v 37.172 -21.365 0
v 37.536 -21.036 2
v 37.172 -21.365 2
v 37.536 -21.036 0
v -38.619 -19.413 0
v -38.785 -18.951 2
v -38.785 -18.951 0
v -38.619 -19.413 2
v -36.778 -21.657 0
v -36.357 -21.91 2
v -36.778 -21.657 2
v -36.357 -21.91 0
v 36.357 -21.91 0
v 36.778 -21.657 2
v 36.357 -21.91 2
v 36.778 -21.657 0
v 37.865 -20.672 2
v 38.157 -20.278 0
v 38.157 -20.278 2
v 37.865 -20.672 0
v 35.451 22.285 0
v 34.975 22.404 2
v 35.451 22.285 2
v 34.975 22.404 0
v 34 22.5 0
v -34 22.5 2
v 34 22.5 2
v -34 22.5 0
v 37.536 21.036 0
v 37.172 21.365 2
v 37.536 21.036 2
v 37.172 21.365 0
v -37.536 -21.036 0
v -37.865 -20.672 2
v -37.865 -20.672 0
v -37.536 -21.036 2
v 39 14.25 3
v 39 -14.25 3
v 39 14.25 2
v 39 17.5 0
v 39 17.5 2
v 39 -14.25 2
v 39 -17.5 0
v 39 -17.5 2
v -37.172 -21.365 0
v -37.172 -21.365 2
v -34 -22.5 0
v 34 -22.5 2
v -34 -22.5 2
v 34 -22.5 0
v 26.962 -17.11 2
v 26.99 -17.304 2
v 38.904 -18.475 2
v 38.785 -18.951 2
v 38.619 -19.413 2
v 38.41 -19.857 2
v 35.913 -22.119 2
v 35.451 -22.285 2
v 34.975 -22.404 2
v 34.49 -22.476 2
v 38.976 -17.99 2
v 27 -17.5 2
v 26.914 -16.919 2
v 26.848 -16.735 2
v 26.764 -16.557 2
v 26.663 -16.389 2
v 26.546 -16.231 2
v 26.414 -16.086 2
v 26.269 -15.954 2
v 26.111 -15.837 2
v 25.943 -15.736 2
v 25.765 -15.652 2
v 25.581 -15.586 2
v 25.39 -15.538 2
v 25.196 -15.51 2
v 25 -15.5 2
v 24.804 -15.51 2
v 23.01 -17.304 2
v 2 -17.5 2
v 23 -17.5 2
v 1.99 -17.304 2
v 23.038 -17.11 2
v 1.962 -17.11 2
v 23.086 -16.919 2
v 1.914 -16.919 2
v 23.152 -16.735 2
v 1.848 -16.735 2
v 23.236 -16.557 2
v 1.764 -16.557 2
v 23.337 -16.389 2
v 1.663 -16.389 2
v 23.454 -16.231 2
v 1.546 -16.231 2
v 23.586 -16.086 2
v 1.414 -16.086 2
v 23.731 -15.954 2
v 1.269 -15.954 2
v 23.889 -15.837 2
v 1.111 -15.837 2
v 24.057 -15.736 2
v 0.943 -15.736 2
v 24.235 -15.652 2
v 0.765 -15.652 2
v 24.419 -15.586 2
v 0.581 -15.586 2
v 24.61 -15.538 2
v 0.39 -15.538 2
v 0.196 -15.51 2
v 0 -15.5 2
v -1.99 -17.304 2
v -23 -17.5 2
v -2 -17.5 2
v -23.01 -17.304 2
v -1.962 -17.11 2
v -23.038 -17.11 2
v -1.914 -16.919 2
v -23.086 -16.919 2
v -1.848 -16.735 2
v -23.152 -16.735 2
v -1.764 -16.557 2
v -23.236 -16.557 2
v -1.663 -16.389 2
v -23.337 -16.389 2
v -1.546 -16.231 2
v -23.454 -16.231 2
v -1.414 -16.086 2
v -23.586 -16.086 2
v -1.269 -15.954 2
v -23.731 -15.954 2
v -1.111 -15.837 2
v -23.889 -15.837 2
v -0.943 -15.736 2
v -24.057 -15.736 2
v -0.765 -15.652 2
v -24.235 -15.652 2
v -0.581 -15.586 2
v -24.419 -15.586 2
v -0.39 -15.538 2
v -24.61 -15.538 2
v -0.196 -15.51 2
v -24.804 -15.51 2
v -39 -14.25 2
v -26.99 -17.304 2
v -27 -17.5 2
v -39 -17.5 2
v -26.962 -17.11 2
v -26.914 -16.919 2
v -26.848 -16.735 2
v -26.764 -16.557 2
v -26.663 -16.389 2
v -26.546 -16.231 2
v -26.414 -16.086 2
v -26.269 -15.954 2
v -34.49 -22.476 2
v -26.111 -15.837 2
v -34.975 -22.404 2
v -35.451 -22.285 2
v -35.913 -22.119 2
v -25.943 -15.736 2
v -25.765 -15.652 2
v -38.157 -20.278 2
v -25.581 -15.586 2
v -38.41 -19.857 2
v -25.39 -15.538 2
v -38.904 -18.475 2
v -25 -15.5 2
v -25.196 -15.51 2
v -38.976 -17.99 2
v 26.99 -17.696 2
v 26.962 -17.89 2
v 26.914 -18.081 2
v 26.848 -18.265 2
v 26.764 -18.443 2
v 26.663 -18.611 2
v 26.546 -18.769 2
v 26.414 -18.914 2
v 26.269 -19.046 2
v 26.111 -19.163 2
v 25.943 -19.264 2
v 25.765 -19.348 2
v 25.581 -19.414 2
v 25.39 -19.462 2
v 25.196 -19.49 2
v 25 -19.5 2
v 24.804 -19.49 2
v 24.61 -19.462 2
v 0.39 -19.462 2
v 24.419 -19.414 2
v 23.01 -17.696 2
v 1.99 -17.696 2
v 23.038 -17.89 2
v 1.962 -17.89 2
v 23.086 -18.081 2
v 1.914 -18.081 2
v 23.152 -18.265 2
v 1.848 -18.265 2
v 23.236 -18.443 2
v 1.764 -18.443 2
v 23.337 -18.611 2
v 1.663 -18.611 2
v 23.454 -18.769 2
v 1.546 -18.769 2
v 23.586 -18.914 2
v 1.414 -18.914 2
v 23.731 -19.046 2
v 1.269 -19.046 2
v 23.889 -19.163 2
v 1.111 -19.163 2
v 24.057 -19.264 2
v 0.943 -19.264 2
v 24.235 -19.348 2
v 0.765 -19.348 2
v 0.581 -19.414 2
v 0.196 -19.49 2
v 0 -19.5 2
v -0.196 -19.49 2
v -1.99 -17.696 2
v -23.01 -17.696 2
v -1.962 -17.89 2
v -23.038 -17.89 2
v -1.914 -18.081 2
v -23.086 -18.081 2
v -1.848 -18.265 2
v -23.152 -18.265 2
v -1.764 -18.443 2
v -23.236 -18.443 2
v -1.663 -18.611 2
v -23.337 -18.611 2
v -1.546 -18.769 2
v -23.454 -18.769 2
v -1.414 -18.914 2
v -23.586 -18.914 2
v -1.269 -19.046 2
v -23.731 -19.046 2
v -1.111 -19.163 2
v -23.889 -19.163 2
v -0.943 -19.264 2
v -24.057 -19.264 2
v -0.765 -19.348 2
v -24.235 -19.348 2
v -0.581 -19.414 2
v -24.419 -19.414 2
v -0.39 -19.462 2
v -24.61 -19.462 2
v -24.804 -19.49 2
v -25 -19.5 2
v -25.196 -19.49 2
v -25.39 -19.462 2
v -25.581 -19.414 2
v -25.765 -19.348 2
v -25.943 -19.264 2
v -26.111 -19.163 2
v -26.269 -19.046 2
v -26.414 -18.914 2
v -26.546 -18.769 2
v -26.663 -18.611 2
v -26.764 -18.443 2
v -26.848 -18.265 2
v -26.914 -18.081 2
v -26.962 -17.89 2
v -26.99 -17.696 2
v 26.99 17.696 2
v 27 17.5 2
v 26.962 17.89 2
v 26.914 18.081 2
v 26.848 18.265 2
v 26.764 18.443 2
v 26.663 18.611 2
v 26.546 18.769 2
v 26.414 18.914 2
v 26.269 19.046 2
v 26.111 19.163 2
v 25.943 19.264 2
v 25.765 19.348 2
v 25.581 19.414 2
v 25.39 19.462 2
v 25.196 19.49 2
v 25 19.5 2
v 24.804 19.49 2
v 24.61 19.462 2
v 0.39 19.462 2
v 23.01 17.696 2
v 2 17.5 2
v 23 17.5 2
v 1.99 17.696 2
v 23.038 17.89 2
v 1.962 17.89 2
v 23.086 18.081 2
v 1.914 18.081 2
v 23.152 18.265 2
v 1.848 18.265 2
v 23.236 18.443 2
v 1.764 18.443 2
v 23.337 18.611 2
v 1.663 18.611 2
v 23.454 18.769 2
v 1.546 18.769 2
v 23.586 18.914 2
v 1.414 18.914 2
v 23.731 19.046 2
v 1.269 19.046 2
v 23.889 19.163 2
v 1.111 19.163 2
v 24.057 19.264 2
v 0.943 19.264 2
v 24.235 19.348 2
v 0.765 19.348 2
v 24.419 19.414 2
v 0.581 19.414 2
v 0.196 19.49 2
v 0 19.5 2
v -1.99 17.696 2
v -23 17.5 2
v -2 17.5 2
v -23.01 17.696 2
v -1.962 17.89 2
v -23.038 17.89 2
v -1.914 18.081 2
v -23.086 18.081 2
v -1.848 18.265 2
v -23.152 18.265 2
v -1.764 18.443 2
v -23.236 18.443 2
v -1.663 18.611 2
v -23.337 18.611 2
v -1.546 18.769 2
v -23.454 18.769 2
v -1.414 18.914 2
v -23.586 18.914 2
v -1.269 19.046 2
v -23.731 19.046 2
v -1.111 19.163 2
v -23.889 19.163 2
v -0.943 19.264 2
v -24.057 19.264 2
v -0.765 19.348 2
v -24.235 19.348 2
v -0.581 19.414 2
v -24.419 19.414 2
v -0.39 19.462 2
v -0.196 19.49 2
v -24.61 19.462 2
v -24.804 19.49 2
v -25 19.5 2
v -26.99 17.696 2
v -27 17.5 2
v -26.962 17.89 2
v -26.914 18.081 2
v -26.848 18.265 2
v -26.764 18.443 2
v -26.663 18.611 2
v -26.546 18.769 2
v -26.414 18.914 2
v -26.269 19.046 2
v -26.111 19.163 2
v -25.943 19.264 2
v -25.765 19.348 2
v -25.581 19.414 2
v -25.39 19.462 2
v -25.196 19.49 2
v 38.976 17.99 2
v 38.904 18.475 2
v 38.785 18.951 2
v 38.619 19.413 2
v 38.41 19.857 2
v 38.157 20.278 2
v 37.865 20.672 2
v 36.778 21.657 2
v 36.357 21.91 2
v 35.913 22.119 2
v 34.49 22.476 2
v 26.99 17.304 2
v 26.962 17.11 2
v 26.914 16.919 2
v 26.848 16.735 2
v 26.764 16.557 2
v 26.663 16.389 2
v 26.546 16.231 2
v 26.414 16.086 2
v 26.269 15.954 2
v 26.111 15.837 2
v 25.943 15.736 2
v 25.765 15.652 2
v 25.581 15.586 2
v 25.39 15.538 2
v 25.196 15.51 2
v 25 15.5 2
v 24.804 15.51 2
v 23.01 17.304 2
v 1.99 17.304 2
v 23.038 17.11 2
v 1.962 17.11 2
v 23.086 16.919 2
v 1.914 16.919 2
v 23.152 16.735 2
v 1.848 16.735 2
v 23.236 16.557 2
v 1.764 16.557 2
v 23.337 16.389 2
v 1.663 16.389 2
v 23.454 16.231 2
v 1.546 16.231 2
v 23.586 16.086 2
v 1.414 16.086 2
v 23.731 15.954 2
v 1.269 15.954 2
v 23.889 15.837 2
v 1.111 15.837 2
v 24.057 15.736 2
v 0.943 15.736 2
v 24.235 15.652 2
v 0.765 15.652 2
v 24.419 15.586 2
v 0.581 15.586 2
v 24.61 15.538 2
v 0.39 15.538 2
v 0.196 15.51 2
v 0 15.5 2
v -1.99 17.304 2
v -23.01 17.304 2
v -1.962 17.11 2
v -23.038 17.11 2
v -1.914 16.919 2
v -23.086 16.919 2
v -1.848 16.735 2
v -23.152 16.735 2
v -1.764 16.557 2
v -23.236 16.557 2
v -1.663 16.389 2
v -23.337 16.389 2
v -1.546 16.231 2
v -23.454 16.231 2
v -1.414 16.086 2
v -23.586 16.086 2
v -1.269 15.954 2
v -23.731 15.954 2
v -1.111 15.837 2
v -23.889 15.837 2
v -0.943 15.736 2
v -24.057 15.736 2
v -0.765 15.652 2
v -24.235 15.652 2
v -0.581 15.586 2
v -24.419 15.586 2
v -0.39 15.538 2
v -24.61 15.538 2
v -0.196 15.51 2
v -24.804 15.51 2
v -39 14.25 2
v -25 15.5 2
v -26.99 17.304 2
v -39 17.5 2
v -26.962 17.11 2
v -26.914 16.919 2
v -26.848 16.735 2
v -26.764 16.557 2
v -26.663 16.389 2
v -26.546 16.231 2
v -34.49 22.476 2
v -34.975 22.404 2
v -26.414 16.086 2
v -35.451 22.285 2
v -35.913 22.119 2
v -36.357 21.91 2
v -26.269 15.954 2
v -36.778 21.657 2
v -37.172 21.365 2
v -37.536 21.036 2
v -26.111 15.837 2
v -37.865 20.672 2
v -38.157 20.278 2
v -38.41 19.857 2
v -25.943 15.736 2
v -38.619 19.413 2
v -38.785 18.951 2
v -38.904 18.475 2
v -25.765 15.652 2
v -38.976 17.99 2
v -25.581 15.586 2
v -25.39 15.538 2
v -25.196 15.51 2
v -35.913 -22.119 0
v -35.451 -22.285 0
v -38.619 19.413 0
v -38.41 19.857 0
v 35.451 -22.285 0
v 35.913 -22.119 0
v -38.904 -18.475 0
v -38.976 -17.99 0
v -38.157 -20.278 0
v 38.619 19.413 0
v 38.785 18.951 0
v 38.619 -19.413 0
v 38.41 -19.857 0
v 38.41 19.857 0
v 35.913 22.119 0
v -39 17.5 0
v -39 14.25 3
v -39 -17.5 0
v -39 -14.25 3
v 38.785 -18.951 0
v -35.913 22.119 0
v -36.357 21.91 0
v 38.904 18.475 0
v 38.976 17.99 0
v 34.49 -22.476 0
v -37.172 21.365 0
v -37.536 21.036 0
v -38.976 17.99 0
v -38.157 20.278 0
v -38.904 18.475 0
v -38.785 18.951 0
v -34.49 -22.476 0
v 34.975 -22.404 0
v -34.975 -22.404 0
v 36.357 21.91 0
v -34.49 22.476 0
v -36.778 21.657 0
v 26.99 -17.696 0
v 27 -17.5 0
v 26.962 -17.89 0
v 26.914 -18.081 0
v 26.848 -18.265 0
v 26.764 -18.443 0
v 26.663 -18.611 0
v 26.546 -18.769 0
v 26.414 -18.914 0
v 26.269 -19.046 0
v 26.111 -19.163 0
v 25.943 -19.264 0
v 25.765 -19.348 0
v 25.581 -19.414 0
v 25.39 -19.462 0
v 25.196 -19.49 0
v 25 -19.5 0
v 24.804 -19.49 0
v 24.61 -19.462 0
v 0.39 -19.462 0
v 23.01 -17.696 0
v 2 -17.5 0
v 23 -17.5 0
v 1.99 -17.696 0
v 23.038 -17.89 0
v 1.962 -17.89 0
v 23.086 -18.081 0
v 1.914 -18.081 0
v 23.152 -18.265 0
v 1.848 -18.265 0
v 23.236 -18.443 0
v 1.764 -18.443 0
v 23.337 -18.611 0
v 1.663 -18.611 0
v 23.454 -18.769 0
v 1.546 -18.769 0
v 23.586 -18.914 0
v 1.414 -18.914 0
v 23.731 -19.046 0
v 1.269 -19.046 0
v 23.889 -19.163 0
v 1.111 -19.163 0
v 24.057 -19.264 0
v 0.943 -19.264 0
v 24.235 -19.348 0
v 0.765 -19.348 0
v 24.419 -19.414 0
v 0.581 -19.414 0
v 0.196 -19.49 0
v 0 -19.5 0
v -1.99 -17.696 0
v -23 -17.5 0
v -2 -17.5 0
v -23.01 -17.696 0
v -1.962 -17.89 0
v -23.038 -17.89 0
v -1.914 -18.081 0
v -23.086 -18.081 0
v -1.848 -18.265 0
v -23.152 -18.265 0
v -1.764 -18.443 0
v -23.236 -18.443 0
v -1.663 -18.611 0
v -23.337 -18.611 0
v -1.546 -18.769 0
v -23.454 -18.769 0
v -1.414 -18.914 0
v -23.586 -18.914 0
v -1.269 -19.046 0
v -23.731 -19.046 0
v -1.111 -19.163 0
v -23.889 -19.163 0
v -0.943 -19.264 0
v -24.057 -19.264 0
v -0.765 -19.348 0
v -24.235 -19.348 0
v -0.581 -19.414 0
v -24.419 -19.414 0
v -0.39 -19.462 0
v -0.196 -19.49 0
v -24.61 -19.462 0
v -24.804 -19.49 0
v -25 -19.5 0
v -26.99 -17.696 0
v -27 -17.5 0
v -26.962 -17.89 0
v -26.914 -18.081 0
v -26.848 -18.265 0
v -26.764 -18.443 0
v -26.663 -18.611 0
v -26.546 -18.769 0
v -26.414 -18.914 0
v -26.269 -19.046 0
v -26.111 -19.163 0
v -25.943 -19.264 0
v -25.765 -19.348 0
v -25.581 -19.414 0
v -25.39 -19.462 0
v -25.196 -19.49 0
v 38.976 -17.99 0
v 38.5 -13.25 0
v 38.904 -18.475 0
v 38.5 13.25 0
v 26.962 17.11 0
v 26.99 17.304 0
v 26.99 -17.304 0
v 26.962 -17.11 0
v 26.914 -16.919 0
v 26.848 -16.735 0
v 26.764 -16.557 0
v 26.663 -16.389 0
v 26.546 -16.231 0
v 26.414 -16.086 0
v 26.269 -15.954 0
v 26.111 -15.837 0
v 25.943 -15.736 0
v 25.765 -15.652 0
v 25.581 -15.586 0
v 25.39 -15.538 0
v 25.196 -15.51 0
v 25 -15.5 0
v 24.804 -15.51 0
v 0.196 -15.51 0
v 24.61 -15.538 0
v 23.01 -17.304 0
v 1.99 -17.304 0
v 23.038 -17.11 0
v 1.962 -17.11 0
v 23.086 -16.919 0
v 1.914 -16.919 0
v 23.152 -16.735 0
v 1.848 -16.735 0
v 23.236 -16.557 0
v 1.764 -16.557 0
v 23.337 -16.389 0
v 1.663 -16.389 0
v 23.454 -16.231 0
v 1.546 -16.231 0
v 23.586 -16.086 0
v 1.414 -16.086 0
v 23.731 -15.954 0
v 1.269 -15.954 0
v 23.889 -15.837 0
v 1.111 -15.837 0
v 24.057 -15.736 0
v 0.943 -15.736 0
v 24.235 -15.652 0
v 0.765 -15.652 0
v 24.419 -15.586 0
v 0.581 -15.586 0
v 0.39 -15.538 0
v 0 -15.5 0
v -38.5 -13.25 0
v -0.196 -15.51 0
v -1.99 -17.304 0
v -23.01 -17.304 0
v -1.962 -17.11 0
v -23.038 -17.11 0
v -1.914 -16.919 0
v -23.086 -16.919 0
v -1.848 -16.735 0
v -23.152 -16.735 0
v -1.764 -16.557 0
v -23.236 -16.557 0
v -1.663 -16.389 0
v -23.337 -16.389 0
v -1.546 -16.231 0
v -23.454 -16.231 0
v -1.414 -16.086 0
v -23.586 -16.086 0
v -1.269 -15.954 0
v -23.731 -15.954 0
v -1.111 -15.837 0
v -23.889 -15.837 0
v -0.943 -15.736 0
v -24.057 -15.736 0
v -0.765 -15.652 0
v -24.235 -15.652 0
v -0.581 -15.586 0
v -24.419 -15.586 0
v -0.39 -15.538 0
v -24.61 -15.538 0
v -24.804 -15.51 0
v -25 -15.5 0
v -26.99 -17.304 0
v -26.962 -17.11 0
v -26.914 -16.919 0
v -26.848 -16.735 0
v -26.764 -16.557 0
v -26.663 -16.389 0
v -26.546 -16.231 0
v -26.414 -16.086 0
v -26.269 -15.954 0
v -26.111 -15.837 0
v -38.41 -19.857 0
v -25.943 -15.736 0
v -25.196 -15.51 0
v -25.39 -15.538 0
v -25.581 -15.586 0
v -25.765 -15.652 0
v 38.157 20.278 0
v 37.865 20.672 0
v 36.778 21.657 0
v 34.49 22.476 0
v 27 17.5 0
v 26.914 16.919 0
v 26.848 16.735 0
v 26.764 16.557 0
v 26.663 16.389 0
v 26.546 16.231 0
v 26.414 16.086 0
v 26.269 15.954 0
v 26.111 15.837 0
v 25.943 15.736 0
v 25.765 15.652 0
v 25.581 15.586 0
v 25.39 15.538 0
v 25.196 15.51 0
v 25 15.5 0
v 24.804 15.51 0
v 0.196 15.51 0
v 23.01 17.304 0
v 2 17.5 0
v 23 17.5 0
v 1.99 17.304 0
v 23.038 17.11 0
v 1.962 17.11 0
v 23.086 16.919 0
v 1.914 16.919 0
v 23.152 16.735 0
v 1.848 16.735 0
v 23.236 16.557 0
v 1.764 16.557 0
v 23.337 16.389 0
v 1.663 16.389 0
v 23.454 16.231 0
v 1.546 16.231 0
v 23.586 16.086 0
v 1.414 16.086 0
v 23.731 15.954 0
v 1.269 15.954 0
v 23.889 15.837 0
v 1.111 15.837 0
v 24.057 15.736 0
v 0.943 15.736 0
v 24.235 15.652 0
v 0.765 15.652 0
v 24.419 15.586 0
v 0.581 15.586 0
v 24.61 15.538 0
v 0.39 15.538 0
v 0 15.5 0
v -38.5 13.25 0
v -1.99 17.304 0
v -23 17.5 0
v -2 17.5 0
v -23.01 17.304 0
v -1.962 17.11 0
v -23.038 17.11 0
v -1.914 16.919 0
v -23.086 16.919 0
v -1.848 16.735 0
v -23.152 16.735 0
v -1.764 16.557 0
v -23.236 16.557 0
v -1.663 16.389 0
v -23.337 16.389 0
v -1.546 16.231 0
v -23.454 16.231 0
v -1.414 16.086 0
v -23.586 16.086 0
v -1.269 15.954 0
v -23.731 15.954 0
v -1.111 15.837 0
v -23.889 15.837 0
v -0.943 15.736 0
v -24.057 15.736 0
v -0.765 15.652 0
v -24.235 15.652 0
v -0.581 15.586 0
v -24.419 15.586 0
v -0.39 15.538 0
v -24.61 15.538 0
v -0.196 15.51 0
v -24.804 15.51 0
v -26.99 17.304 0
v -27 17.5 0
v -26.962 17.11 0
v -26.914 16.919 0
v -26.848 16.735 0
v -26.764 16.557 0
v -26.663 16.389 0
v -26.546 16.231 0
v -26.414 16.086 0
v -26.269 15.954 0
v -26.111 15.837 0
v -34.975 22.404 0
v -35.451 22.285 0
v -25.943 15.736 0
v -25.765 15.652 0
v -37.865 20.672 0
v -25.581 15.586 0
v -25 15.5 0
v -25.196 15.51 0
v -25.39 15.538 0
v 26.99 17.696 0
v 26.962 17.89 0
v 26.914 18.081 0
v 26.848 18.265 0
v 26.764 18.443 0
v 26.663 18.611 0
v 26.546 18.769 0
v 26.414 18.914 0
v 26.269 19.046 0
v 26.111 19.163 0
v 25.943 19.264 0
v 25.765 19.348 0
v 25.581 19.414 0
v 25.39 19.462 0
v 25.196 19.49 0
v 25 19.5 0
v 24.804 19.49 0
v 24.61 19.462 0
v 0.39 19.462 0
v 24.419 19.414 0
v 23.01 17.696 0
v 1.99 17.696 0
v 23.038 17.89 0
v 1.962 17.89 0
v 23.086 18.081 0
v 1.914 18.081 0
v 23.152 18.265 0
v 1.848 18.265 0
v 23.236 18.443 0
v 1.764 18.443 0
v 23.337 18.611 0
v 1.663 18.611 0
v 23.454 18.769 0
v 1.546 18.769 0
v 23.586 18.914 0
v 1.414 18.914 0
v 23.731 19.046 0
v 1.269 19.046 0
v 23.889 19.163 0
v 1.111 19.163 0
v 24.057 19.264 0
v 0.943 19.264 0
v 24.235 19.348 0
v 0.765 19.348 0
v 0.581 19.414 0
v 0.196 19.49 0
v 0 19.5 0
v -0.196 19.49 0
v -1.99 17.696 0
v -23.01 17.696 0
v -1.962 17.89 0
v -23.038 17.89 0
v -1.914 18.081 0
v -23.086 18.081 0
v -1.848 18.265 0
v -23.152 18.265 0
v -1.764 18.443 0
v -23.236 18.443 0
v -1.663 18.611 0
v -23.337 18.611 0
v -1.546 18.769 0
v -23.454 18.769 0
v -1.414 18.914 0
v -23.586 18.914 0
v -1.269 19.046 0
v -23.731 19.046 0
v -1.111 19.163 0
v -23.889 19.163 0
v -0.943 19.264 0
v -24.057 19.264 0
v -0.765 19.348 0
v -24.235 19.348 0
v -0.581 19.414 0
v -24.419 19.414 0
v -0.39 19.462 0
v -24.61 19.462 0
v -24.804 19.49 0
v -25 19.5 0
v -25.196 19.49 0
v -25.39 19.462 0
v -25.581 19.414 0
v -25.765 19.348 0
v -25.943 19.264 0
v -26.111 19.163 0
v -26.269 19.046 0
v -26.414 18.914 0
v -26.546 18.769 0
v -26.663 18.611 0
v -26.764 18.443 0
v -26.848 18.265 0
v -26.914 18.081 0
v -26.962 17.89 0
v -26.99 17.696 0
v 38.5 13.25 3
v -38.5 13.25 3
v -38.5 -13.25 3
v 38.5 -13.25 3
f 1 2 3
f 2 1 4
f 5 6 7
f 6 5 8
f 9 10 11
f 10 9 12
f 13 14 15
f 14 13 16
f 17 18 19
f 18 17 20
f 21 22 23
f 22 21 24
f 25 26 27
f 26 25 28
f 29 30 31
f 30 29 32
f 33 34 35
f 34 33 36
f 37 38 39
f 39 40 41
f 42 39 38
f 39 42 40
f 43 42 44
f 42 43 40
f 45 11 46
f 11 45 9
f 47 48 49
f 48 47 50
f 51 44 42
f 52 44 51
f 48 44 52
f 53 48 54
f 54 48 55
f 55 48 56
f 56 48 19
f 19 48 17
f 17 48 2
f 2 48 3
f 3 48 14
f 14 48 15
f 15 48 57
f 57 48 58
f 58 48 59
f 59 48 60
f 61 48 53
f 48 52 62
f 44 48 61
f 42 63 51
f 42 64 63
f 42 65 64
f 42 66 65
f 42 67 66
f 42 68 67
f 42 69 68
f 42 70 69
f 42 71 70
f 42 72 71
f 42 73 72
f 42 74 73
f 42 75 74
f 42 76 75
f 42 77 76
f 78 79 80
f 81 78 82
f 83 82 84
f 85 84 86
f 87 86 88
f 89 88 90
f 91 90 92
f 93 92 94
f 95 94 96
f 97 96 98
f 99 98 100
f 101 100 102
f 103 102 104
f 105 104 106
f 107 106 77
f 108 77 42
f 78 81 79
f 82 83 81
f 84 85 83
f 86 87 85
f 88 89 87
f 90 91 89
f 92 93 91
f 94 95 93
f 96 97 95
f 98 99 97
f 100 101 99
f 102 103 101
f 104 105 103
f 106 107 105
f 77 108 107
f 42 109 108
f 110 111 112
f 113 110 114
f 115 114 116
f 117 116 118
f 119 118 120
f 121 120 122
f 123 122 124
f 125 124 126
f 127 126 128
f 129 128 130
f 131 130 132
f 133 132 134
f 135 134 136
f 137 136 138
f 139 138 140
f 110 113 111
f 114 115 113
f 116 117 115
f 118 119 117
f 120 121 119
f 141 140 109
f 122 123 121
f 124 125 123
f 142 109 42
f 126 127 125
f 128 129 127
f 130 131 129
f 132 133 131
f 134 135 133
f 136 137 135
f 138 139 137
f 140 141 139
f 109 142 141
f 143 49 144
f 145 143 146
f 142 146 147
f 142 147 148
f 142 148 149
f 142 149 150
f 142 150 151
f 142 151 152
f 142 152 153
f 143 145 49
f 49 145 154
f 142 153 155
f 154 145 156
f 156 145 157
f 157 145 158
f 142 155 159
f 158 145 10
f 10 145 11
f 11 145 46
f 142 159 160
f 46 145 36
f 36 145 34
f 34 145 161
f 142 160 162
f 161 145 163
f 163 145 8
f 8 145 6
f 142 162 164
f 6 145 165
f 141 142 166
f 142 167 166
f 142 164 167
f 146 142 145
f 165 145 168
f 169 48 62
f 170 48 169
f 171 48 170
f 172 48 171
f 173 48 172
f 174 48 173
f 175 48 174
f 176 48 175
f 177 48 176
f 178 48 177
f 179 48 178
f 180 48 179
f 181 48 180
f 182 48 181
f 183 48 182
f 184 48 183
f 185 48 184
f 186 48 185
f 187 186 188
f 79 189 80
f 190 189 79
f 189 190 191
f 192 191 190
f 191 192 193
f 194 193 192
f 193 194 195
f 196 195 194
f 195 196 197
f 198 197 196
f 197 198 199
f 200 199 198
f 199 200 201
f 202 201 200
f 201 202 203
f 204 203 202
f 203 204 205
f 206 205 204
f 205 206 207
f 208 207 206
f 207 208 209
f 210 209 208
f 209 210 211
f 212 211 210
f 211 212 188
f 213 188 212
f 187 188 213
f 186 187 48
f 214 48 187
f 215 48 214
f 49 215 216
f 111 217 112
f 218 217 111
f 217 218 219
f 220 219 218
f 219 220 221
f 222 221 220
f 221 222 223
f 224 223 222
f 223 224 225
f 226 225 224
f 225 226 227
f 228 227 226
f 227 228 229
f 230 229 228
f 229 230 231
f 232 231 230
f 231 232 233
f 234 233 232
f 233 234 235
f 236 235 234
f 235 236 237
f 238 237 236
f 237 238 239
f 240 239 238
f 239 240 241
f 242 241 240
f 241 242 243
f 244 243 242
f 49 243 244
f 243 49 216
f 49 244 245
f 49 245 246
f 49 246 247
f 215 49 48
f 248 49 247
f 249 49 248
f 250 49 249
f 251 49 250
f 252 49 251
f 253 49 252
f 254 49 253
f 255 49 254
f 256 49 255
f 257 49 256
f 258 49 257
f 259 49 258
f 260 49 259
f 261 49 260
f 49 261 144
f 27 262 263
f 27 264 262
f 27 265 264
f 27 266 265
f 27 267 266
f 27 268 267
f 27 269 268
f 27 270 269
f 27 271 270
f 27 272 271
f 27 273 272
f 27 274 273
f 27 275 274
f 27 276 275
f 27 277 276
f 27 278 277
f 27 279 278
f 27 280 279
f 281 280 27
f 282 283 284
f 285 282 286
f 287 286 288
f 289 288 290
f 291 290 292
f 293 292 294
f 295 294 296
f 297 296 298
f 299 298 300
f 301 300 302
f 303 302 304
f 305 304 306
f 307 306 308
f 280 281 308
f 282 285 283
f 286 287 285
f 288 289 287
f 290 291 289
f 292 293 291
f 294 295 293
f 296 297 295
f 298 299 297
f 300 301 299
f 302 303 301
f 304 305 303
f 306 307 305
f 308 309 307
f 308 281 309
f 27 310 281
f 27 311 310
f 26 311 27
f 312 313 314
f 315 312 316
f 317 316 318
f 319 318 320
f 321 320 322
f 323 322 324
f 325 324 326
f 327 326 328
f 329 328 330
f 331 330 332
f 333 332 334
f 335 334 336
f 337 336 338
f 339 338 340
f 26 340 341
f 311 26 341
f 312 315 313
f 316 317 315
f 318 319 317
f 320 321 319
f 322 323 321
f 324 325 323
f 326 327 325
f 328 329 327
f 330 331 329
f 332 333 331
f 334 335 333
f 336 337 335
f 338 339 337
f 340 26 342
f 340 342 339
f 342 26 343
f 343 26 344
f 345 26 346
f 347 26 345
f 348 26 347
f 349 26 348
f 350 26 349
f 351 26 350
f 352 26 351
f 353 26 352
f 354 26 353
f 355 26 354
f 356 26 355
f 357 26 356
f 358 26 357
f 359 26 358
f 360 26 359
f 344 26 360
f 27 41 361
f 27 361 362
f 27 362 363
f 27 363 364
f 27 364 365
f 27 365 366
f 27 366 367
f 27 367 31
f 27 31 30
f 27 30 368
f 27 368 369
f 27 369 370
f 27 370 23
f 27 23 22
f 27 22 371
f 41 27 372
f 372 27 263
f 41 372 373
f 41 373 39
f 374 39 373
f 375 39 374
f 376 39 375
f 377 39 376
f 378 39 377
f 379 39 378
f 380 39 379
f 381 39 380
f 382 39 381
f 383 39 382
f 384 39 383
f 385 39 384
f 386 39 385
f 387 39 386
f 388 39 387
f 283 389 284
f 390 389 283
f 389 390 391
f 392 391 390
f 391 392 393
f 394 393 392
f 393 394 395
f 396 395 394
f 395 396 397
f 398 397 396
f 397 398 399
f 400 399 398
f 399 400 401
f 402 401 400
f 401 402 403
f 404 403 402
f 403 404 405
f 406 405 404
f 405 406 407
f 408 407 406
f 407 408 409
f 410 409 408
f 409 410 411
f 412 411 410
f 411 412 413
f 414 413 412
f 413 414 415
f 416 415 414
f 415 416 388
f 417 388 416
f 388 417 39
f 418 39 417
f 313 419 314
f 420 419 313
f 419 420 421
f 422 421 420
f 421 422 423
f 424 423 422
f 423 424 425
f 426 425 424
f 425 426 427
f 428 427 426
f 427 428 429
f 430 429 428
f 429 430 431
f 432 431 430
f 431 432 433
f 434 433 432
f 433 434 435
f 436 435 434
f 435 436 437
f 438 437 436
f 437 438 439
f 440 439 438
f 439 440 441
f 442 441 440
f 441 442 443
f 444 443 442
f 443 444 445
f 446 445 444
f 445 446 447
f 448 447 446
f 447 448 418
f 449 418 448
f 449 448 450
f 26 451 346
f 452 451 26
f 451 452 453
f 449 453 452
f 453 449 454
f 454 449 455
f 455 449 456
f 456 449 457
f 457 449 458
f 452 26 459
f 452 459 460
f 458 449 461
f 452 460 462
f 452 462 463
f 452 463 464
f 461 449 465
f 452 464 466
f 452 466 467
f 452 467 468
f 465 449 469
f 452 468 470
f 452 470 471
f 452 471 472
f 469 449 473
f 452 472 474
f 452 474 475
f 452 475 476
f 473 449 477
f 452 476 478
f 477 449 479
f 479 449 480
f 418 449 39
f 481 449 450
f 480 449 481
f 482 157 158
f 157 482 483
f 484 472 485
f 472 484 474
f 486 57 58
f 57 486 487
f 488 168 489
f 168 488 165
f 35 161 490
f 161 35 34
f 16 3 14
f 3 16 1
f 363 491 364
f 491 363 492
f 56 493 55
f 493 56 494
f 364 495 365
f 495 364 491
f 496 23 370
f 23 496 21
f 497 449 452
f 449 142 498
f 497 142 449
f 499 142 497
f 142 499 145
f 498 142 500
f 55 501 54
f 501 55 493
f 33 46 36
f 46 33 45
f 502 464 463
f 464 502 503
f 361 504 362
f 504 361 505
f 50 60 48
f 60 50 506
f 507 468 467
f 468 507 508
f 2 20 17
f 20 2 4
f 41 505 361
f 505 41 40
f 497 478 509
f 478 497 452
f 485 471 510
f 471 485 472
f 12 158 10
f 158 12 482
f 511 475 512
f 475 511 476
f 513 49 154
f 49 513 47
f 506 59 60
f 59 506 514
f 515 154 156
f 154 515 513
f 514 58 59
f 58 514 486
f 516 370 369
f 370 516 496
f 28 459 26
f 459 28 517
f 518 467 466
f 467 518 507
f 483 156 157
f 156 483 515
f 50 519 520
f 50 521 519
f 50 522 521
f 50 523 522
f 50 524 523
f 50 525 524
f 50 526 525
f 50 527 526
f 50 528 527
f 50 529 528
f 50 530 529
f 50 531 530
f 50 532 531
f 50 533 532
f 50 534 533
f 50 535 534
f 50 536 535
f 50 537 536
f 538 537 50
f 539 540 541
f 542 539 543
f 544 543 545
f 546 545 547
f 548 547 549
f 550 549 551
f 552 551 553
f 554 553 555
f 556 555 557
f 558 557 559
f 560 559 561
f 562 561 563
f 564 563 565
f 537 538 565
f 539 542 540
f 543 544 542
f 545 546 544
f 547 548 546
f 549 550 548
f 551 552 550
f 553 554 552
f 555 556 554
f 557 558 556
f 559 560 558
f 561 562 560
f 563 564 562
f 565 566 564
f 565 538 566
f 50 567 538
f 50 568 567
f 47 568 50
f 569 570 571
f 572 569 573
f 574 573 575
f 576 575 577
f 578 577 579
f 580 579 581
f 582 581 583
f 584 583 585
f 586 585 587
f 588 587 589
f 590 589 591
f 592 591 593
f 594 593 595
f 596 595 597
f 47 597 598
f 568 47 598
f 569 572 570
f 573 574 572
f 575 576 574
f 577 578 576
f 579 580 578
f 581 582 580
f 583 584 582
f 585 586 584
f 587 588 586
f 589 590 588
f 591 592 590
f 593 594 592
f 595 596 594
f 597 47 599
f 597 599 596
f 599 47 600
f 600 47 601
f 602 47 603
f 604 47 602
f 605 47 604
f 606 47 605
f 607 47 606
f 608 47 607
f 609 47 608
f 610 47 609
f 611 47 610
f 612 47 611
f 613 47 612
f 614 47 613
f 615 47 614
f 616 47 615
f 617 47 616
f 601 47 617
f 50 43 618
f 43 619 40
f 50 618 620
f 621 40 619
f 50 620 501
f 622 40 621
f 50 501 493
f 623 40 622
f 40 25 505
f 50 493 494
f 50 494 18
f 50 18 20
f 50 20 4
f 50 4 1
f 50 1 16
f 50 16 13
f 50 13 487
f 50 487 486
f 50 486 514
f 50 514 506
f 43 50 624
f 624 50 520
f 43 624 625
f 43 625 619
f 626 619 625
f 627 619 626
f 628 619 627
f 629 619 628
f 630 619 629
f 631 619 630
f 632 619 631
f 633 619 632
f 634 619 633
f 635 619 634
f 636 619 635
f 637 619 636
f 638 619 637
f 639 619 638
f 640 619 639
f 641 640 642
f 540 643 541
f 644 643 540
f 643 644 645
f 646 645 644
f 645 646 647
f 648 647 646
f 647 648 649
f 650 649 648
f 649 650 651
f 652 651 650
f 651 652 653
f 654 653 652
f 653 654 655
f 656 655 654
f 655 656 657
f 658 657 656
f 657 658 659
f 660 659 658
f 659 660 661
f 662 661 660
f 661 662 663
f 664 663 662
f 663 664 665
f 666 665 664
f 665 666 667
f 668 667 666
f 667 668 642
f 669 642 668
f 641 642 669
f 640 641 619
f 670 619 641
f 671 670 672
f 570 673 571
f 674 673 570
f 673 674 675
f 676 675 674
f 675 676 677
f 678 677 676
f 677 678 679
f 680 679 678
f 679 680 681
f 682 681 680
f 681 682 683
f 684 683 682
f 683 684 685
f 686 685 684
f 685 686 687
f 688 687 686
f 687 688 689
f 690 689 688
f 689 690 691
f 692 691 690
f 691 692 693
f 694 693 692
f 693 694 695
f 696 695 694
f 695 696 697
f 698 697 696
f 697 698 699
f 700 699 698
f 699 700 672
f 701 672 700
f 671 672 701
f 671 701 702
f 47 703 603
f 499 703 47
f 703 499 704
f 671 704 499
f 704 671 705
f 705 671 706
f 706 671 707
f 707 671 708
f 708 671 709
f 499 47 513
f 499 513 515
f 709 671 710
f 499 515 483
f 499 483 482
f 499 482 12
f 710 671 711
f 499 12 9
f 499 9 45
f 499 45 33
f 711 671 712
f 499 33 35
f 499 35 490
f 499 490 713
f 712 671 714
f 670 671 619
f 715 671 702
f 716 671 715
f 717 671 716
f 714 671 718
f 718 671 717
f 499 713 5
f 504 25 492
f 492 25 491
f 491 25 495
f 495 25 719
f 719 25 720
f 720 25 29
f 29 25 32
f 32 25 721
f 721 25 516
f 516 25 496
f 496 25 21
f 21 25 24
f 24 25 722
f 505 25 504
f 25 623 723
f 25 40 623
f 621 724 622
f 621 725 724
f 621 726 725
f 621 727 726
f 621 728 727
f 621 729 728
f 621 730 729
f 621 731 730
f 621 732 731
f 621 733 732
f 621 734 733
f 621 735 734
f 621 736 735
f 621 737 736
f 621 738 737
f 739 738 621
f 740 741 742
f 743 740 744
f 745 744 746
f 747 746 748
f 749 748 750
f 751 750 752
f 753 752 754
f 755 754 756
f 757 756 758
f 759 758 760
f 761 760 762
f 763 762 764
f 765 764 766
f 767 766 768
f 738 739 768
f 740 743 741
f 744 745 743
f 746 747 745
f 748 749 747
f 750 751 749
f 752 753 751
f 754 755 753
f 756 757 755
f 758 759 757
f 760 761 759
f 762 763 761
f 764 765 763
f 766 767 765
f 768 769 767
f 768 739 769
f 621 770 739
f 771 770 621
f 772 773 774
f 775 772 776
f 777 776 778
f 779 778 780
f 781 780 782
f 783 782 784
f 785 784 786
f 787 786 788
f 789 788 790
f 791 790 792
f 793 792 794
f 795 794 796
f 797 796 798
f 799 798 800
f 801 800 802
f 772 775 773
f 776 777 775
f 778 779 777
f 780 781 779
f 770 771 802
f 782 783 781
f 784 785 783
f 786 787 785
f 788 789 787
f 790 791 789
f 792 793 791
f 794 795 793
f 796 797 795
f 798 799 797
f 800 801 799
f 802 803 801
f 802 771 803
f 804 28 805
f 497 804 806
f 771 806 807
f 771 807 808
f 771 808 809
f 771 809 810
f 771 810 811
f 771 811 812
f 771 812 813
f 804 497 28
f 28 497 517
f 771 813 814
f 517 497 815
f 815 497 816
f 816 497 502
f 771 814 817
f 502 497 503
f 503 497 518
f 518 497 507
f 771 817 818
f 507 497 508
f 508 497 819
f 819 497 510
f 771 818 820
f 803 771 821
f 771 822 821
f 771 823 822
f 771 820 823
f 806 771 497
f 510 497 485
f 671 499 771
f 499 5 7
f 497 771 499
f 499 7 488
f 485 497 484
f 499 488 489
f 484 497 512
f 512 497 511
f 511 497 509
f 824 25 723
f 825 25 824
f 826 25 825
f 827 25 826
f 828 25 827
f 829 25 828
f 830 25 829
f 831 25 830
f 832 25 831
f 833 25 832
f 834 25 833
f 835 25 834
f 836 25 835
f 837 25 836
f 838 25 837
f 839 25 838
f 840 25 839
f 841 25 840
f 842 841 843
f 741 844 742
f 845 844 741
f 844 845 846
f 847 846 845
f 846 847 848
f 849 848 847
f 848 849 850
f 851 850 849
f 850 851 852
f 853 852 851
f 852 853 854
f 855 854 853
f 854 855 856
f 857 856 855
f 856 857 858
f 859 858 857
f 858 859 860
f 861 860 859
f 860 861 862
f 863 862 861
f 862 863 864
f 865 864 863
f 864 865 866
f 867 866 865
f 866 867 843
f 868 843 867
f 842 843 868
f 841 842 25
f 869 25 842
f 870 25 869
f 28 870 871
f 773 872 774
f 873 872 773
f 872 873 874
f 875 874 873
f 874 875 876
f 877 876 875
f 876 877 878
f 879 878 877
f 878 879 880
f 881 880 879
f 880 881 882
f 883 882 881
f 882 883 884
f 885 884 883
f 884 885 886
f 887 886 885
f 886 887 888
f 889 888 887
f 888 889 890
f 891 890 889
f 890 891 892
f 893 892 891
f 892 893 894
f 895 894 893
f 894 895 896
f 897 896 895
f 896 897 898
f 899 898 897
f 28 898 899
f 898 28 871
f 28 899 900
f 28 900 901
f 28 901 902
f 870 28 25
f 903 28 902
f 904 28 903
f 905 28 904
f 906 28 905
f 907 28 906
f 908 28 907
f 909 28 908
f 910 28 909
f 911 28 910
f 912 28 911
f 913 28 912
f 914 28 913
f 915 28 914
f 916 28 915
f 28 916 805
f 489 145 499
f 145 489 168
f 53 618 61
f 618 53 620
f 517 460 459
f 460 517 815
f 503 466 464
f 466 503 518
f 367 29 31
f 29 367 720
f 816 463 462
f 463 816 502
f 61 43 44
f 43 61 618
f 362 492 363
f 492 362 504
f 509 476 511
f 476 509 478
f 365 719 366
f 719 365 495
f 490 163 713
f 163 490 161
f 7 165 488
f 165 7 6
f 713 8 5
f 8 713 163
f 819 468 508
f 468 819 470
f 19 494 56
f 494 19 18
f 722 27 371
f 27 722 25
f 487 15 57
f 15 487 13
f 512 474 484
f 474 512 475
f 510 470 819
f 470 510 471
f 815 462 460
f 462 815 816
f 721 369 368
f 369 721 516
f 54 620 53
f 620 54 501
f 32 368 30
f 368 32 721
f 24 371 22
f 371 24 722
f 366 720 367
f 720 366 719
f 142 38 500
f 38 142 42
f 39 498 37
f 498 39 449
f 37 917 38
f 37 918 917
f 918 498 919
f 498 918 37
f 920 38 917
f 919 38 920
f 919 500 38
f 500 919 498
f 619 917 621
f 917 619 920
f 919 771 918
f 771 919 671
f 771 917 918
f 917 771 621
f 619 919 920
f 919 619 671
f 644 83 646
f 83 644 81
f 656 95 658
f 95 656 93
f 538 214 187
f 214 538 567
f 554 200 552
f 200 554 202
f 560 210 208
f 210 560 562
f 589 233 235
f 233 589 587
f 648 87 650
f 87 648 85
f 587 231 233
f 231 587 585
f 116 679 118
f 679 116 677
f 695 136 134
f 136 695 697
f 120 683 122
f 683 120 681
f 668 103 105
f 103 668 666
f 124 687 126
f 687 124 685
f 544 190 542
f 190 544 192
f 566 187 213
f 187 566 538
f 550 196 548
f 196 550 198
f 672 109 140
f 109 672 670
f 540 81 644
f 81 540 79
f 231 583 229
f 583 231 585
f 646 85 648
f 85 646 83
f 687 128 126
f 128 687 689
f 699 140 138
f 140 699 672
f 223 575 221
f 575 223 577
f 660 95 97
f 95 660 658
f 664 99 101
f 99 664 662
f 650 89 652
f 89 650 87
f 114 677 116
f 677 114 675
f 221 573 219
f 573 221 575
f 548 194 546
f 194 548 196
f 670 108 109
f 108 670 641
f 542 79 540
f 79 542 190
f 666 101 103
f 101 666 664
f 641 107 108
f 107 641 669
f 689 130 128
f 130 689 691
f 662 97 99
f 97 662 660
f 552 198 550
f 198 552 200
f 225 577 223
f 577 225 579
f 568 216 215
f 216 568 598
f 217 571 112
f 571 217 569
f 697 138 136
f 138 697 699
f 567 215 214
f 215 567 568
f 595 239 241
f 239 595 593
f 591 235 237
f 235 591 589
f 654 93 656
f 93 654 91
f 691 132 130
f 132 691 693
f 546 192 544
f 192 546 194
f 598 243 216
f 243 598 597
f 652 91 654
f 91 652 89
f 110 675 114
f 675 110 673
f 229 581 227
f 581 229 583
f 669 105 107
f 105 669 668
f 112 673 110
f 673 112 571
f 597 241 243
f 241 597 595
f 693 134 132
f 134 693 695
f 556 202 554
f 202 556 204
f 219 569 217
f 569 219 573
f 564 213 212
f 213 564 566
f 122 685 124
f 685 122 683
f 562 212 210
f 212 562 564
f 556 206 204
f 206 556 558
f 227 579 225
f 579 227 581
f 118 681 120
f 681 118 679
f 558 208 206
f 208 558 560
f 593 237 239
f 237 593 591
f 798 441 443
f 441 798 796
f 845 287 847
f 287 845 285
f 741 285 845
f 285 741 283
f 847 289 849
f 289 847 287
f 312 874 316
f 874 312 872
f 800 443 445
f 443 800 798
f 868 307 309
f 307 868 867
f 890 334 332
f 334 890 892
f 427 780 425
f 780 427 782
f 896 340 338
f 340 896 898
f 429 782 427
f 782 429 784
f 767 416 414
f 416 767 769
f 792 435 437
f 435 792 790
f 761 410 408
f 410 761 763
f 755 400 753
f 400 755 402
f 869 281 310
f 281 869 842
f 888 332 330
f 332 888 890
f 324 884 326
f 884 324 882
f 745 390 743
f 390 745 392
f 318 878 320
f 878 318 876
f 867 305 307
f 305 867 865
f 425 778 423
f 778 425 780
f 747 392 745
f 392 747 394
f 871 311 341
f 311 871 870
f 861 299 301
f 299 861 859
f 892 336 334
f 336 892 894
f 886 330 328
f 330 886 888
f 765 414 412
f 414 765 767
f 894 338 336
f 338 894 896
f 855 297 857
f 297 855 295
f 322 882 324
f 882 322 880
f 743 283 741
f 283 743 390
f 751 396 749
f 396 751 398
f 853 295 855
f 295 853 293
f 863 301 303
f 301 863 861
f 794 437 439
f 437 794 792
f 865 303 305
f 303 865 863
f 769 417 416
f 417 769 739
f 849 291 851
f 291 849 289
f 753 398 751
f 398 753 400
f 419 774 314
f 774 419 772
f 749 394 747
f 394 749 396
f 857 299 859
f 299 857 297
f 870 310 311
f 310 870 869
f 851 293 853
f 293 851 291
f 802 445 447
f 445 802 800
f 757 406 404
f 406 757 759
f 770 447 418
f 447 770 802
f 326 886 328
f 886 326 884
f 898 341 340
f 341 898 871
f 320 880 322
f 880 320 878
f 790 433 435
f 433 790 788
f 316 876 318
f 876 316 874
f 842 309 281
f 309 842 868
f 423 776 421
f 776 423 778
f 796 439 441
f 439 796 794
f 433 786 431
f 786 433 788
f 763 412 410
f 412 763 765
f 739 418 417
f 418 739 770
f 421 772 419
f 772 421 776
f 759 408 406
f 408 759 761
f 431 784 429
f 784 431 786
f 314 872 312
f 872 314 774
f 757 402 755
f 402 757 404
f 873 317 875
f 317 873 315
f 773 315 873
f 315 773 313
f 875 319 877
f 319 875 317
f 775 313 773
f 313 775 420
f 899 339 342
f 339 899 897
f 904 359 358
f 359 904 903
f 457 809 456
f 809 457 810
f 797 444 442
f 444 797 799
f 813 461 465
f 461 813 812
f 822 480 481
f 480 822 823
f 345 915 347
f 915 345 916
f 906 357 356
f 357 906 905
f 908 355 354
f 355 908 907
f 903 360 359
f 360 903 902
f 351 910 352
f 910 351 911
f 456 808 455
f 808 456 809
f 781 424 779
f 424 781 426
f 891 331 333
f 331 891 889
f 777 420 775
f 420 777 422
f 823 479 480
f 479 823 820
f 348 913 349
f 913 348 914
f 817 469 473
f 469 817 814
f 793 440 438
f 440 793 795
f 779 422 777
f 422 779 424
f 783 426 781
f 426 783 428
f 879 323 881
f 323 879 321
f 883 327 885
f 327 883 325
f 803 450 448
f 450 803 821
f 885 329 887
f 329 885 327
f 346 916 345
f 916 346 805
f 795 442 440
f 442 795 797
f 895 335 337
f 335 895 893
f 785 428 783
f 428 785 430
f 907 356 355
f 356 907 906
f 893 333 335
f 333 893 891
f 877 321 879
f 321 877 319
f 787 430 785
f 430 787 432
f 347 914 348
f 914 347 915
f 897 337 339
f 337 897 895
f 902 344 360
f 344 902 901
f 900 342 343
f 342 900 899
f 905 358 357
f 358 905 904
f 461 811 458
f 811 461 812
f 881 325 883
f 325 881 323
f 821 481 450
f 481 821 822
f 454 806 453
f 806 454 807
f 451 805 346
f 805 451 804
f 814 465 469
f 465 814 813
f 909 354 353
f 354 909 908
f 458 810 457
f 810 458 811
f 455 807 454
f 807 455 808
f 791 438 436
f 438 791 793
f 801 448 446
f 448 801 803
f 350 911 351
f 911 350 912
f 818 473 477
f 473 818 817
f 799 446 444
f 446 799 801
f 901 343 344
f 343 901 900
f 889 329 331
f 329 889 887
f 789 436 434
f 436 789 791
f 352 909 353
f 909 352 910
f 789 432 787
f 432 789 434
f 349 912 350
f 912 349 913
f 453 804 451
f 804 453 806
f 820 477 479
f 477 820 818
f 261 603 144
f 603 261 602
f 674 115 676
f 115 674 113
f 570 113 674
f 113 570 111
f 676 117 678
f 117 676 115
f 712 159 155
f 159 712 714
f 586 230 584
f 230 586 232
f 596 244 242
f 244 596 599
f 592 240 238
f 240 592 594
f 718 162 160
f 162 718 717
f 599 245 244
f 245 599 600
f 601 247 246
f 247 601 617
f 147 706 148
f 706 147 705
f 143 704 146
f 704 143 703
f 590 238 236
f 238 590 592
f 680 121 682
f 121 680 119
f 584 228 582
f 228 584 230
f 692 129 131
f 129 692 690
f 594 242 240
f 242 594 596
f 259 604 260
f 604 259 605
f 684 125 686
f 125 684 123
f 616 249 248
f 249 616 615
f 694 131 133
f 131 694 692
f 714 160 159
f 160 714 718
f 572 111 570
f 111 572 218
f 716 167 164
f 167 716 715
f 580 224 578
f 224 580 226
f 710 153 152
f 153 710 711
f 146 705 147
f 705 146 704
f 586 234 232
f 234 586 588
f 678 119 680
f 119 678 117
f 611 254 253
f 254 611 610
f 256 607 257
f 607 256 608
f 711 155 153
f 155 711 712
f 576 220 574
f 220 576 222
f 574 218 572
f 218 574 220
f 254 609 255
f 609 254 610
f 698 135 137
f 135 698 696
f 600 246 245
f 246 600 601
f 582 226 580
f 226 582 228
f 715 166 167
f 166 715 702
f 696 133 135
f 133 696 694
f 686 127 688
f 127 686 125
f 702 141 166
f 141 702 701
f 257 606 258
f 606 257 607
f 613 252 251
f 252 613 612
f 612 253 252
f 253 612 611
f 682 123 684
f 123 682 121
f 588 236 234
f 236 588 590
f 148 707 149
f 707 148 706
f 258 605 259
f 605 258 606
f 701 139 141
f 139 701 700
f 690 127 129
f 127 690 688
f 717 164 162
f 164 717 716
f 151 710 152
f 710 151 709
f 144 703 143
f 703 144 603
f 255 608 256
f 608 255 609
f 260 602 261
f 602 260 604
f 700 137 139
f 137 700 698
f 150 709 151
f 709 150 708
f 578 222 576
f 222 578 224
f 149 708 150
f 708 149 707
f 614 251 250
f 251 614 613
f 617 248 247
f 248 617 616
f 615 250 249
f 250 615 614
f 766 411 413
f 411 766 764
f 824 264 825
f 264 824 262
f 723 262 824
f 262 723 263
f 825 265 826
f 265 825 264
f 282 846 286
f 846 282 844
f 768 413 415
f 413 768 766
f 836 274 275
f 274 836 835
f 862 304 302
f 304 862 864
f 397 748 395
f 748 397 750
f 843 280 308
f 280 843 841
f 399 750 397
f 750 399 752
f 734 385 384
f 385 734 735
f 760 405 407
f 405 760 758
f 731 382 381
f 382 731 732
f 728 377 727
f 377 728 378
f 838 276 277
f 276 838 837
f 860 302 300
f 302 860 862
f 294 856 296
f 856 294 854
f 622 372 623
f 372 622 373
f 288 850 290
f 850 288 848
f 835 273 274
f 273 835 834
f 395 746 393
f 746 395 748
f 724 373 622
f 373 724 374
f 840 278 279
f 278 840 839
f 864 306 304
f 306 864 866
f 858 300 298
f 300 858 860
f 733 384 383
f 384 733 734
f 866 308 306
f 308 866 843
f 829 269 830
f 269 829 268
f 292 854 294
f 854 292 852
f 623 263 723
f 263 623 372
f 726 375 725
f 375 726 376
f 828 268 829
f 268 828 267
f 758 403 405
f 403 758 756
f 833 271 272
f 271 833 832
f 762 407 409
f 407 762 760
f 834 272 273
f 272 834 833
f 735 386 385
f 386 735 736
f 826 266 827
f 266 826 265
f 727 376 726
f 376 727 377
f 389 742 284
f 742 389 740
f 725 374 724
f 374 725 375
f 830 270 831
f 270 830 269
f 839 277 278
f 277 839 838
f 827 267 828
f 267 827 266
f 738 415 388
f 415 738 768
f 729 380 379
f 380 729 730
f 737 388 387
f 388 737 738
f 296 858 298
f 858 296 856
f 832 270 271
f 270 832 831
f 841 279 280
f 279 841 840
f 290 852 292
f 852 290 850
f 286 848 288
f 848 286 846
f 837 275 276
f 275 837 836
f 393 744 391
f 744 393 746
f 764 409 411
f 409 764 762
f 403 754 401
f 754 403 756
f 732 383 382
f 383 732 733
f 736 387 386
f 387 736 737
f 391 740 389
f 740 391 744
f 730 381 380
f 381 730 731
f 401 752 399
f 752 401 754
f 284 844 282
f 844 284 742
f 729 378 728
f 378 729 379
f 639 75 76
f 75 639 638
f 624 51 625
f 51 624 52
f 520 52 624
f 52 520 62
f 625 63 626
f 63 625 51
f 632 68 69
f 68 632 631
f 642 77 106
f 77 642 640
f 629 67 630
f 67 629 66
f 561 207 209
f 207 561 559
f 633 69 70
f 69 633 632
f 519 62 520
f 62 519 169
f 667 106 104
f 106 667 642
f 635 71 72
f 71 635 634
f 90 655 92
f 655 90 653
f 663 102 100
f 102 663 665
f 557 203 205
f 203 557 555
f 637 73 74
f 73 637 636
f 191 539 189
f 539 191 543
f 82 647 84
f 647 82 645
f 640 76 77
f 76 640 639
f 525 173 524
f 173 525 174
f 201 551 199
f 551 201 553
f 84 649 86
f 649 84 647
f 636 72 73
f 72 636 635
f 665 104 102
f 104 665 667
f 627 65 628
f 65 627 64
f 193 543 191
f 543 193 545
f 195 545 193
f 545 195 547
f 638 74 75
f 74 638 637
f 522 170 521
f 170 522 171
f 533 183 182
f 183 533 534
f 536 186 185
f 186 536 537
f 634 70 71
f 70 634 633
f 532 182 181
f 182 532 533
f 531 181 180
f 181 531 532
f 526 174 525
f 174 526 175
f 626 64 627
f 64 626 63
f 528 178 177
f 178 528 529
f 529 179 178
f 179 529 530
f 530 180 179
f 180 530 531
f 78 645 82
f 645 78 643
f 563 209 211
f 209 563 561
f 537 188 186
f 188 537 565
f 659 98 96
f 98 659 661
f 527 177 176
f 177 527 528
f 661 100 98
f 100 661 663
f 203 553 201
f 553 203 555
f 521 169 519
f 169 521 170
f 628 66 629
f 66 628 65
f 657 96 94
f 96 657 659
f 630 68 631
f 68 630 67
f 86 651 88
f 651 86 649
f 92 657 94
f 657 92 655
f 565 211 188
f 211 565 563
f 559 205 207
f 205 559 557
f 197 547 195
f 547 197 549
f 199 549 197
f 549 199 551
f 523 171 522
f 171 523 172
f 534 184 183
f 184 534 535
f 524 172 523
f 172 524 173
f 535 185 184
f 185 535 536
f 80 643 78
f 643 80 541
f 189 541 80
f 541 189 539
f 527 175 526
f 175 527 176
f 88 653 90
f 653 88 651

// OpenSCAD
$fn=64;

sh_through = 4;
sh_countersink = 3;
sh_thread = 2.7;


mounting_holes_height = 68;
mounting_holes_width = 35;

slide_height = 26.5;
slide_width = 77;

fluidics_gap = 50;

washer_thickness = 0.8;
washer_od = 14; // Note washer inner dia must be > 8 & < 10 
// M8x14mmx1mm shim washer reccomended if not printing

oring_od = 16.5;

luer_shoulder_height = 2.5;
luer_o_ring_thickness = 0.8;

luer_shoulder_thickness = luer_shoulder_height + luer_o_ring_thickness;

plate_thickness = 2;

glass_shoulder_thickness = 1; 

difference() {
    union() {
        hull() {
            translate([-mounting_holes_height/2,-mounting_holes_width/2,0])cylinder(plate_thickness,5,5);
            translate([-mounting_holes_height/2,mounting_holes_width/2,0])cylinder(plate_thickness,5,5);
            translate([mounting_holes_height/2,-mounting_holes_width/2,0])cylinder(plate_thickness,5,5);
            translate([mounting_holes_height/2,mounting_holes_width/2,0])cylinder(plate_thickness,5,5);
        }
        
        hull() {
            translate([-slide_width/2-0.5, -slide_height/2-1, 0])cube([6,6, plate_thickness+glass_shoulder_thickness]);
            translate([-slide_width/2-0.5, slide_height/2-5, 0])cube([6,6, plate_thickness+glass_shoulder_thickness]);
            translate([slide_width/2-5.5, -slide_height/2-1, 0])cube([6,6, plate_thickness+glass_shoulder_thickness]);
            translate([slide_width/2-5.5, slide_height/2-5, 0])cube([6,6, plate_thickness+glass_shoulder_thickness]);
        }
    }
        
       
    
    
    
    translate([-slide_width/2, -slide_height/2, -1])cube([slide_width, slide_height, 20+plate_thickness]);

    translate([0,-mounting_holes_width / 2,-1])cylinder(30, sh_through/2, sh_through/2);
    translate([0,mounting_holes_width / 2,-1])cylinder(30, sh_through/2, sh_through/2);
    translate([-fluidics_gap/2,mounting_holes_width / 2,-1])cylinder(30, sh_through/2, sh_through/2);
    translate([-fluidics_gap/2,-mounting_holes_width / 2,-1])cylinder(30, sh_through/2, sh_through/2);
    translate([fluidics_gap/2,mounting_holes_width / 2,-1])cylinder(30, sh_through/2, sh_through/2);
    translate([fluidics_gap/2,-mounting_holes_width / 2,-1])cylinder(30, sh_through/2, sh_through/2);

    
    

}
